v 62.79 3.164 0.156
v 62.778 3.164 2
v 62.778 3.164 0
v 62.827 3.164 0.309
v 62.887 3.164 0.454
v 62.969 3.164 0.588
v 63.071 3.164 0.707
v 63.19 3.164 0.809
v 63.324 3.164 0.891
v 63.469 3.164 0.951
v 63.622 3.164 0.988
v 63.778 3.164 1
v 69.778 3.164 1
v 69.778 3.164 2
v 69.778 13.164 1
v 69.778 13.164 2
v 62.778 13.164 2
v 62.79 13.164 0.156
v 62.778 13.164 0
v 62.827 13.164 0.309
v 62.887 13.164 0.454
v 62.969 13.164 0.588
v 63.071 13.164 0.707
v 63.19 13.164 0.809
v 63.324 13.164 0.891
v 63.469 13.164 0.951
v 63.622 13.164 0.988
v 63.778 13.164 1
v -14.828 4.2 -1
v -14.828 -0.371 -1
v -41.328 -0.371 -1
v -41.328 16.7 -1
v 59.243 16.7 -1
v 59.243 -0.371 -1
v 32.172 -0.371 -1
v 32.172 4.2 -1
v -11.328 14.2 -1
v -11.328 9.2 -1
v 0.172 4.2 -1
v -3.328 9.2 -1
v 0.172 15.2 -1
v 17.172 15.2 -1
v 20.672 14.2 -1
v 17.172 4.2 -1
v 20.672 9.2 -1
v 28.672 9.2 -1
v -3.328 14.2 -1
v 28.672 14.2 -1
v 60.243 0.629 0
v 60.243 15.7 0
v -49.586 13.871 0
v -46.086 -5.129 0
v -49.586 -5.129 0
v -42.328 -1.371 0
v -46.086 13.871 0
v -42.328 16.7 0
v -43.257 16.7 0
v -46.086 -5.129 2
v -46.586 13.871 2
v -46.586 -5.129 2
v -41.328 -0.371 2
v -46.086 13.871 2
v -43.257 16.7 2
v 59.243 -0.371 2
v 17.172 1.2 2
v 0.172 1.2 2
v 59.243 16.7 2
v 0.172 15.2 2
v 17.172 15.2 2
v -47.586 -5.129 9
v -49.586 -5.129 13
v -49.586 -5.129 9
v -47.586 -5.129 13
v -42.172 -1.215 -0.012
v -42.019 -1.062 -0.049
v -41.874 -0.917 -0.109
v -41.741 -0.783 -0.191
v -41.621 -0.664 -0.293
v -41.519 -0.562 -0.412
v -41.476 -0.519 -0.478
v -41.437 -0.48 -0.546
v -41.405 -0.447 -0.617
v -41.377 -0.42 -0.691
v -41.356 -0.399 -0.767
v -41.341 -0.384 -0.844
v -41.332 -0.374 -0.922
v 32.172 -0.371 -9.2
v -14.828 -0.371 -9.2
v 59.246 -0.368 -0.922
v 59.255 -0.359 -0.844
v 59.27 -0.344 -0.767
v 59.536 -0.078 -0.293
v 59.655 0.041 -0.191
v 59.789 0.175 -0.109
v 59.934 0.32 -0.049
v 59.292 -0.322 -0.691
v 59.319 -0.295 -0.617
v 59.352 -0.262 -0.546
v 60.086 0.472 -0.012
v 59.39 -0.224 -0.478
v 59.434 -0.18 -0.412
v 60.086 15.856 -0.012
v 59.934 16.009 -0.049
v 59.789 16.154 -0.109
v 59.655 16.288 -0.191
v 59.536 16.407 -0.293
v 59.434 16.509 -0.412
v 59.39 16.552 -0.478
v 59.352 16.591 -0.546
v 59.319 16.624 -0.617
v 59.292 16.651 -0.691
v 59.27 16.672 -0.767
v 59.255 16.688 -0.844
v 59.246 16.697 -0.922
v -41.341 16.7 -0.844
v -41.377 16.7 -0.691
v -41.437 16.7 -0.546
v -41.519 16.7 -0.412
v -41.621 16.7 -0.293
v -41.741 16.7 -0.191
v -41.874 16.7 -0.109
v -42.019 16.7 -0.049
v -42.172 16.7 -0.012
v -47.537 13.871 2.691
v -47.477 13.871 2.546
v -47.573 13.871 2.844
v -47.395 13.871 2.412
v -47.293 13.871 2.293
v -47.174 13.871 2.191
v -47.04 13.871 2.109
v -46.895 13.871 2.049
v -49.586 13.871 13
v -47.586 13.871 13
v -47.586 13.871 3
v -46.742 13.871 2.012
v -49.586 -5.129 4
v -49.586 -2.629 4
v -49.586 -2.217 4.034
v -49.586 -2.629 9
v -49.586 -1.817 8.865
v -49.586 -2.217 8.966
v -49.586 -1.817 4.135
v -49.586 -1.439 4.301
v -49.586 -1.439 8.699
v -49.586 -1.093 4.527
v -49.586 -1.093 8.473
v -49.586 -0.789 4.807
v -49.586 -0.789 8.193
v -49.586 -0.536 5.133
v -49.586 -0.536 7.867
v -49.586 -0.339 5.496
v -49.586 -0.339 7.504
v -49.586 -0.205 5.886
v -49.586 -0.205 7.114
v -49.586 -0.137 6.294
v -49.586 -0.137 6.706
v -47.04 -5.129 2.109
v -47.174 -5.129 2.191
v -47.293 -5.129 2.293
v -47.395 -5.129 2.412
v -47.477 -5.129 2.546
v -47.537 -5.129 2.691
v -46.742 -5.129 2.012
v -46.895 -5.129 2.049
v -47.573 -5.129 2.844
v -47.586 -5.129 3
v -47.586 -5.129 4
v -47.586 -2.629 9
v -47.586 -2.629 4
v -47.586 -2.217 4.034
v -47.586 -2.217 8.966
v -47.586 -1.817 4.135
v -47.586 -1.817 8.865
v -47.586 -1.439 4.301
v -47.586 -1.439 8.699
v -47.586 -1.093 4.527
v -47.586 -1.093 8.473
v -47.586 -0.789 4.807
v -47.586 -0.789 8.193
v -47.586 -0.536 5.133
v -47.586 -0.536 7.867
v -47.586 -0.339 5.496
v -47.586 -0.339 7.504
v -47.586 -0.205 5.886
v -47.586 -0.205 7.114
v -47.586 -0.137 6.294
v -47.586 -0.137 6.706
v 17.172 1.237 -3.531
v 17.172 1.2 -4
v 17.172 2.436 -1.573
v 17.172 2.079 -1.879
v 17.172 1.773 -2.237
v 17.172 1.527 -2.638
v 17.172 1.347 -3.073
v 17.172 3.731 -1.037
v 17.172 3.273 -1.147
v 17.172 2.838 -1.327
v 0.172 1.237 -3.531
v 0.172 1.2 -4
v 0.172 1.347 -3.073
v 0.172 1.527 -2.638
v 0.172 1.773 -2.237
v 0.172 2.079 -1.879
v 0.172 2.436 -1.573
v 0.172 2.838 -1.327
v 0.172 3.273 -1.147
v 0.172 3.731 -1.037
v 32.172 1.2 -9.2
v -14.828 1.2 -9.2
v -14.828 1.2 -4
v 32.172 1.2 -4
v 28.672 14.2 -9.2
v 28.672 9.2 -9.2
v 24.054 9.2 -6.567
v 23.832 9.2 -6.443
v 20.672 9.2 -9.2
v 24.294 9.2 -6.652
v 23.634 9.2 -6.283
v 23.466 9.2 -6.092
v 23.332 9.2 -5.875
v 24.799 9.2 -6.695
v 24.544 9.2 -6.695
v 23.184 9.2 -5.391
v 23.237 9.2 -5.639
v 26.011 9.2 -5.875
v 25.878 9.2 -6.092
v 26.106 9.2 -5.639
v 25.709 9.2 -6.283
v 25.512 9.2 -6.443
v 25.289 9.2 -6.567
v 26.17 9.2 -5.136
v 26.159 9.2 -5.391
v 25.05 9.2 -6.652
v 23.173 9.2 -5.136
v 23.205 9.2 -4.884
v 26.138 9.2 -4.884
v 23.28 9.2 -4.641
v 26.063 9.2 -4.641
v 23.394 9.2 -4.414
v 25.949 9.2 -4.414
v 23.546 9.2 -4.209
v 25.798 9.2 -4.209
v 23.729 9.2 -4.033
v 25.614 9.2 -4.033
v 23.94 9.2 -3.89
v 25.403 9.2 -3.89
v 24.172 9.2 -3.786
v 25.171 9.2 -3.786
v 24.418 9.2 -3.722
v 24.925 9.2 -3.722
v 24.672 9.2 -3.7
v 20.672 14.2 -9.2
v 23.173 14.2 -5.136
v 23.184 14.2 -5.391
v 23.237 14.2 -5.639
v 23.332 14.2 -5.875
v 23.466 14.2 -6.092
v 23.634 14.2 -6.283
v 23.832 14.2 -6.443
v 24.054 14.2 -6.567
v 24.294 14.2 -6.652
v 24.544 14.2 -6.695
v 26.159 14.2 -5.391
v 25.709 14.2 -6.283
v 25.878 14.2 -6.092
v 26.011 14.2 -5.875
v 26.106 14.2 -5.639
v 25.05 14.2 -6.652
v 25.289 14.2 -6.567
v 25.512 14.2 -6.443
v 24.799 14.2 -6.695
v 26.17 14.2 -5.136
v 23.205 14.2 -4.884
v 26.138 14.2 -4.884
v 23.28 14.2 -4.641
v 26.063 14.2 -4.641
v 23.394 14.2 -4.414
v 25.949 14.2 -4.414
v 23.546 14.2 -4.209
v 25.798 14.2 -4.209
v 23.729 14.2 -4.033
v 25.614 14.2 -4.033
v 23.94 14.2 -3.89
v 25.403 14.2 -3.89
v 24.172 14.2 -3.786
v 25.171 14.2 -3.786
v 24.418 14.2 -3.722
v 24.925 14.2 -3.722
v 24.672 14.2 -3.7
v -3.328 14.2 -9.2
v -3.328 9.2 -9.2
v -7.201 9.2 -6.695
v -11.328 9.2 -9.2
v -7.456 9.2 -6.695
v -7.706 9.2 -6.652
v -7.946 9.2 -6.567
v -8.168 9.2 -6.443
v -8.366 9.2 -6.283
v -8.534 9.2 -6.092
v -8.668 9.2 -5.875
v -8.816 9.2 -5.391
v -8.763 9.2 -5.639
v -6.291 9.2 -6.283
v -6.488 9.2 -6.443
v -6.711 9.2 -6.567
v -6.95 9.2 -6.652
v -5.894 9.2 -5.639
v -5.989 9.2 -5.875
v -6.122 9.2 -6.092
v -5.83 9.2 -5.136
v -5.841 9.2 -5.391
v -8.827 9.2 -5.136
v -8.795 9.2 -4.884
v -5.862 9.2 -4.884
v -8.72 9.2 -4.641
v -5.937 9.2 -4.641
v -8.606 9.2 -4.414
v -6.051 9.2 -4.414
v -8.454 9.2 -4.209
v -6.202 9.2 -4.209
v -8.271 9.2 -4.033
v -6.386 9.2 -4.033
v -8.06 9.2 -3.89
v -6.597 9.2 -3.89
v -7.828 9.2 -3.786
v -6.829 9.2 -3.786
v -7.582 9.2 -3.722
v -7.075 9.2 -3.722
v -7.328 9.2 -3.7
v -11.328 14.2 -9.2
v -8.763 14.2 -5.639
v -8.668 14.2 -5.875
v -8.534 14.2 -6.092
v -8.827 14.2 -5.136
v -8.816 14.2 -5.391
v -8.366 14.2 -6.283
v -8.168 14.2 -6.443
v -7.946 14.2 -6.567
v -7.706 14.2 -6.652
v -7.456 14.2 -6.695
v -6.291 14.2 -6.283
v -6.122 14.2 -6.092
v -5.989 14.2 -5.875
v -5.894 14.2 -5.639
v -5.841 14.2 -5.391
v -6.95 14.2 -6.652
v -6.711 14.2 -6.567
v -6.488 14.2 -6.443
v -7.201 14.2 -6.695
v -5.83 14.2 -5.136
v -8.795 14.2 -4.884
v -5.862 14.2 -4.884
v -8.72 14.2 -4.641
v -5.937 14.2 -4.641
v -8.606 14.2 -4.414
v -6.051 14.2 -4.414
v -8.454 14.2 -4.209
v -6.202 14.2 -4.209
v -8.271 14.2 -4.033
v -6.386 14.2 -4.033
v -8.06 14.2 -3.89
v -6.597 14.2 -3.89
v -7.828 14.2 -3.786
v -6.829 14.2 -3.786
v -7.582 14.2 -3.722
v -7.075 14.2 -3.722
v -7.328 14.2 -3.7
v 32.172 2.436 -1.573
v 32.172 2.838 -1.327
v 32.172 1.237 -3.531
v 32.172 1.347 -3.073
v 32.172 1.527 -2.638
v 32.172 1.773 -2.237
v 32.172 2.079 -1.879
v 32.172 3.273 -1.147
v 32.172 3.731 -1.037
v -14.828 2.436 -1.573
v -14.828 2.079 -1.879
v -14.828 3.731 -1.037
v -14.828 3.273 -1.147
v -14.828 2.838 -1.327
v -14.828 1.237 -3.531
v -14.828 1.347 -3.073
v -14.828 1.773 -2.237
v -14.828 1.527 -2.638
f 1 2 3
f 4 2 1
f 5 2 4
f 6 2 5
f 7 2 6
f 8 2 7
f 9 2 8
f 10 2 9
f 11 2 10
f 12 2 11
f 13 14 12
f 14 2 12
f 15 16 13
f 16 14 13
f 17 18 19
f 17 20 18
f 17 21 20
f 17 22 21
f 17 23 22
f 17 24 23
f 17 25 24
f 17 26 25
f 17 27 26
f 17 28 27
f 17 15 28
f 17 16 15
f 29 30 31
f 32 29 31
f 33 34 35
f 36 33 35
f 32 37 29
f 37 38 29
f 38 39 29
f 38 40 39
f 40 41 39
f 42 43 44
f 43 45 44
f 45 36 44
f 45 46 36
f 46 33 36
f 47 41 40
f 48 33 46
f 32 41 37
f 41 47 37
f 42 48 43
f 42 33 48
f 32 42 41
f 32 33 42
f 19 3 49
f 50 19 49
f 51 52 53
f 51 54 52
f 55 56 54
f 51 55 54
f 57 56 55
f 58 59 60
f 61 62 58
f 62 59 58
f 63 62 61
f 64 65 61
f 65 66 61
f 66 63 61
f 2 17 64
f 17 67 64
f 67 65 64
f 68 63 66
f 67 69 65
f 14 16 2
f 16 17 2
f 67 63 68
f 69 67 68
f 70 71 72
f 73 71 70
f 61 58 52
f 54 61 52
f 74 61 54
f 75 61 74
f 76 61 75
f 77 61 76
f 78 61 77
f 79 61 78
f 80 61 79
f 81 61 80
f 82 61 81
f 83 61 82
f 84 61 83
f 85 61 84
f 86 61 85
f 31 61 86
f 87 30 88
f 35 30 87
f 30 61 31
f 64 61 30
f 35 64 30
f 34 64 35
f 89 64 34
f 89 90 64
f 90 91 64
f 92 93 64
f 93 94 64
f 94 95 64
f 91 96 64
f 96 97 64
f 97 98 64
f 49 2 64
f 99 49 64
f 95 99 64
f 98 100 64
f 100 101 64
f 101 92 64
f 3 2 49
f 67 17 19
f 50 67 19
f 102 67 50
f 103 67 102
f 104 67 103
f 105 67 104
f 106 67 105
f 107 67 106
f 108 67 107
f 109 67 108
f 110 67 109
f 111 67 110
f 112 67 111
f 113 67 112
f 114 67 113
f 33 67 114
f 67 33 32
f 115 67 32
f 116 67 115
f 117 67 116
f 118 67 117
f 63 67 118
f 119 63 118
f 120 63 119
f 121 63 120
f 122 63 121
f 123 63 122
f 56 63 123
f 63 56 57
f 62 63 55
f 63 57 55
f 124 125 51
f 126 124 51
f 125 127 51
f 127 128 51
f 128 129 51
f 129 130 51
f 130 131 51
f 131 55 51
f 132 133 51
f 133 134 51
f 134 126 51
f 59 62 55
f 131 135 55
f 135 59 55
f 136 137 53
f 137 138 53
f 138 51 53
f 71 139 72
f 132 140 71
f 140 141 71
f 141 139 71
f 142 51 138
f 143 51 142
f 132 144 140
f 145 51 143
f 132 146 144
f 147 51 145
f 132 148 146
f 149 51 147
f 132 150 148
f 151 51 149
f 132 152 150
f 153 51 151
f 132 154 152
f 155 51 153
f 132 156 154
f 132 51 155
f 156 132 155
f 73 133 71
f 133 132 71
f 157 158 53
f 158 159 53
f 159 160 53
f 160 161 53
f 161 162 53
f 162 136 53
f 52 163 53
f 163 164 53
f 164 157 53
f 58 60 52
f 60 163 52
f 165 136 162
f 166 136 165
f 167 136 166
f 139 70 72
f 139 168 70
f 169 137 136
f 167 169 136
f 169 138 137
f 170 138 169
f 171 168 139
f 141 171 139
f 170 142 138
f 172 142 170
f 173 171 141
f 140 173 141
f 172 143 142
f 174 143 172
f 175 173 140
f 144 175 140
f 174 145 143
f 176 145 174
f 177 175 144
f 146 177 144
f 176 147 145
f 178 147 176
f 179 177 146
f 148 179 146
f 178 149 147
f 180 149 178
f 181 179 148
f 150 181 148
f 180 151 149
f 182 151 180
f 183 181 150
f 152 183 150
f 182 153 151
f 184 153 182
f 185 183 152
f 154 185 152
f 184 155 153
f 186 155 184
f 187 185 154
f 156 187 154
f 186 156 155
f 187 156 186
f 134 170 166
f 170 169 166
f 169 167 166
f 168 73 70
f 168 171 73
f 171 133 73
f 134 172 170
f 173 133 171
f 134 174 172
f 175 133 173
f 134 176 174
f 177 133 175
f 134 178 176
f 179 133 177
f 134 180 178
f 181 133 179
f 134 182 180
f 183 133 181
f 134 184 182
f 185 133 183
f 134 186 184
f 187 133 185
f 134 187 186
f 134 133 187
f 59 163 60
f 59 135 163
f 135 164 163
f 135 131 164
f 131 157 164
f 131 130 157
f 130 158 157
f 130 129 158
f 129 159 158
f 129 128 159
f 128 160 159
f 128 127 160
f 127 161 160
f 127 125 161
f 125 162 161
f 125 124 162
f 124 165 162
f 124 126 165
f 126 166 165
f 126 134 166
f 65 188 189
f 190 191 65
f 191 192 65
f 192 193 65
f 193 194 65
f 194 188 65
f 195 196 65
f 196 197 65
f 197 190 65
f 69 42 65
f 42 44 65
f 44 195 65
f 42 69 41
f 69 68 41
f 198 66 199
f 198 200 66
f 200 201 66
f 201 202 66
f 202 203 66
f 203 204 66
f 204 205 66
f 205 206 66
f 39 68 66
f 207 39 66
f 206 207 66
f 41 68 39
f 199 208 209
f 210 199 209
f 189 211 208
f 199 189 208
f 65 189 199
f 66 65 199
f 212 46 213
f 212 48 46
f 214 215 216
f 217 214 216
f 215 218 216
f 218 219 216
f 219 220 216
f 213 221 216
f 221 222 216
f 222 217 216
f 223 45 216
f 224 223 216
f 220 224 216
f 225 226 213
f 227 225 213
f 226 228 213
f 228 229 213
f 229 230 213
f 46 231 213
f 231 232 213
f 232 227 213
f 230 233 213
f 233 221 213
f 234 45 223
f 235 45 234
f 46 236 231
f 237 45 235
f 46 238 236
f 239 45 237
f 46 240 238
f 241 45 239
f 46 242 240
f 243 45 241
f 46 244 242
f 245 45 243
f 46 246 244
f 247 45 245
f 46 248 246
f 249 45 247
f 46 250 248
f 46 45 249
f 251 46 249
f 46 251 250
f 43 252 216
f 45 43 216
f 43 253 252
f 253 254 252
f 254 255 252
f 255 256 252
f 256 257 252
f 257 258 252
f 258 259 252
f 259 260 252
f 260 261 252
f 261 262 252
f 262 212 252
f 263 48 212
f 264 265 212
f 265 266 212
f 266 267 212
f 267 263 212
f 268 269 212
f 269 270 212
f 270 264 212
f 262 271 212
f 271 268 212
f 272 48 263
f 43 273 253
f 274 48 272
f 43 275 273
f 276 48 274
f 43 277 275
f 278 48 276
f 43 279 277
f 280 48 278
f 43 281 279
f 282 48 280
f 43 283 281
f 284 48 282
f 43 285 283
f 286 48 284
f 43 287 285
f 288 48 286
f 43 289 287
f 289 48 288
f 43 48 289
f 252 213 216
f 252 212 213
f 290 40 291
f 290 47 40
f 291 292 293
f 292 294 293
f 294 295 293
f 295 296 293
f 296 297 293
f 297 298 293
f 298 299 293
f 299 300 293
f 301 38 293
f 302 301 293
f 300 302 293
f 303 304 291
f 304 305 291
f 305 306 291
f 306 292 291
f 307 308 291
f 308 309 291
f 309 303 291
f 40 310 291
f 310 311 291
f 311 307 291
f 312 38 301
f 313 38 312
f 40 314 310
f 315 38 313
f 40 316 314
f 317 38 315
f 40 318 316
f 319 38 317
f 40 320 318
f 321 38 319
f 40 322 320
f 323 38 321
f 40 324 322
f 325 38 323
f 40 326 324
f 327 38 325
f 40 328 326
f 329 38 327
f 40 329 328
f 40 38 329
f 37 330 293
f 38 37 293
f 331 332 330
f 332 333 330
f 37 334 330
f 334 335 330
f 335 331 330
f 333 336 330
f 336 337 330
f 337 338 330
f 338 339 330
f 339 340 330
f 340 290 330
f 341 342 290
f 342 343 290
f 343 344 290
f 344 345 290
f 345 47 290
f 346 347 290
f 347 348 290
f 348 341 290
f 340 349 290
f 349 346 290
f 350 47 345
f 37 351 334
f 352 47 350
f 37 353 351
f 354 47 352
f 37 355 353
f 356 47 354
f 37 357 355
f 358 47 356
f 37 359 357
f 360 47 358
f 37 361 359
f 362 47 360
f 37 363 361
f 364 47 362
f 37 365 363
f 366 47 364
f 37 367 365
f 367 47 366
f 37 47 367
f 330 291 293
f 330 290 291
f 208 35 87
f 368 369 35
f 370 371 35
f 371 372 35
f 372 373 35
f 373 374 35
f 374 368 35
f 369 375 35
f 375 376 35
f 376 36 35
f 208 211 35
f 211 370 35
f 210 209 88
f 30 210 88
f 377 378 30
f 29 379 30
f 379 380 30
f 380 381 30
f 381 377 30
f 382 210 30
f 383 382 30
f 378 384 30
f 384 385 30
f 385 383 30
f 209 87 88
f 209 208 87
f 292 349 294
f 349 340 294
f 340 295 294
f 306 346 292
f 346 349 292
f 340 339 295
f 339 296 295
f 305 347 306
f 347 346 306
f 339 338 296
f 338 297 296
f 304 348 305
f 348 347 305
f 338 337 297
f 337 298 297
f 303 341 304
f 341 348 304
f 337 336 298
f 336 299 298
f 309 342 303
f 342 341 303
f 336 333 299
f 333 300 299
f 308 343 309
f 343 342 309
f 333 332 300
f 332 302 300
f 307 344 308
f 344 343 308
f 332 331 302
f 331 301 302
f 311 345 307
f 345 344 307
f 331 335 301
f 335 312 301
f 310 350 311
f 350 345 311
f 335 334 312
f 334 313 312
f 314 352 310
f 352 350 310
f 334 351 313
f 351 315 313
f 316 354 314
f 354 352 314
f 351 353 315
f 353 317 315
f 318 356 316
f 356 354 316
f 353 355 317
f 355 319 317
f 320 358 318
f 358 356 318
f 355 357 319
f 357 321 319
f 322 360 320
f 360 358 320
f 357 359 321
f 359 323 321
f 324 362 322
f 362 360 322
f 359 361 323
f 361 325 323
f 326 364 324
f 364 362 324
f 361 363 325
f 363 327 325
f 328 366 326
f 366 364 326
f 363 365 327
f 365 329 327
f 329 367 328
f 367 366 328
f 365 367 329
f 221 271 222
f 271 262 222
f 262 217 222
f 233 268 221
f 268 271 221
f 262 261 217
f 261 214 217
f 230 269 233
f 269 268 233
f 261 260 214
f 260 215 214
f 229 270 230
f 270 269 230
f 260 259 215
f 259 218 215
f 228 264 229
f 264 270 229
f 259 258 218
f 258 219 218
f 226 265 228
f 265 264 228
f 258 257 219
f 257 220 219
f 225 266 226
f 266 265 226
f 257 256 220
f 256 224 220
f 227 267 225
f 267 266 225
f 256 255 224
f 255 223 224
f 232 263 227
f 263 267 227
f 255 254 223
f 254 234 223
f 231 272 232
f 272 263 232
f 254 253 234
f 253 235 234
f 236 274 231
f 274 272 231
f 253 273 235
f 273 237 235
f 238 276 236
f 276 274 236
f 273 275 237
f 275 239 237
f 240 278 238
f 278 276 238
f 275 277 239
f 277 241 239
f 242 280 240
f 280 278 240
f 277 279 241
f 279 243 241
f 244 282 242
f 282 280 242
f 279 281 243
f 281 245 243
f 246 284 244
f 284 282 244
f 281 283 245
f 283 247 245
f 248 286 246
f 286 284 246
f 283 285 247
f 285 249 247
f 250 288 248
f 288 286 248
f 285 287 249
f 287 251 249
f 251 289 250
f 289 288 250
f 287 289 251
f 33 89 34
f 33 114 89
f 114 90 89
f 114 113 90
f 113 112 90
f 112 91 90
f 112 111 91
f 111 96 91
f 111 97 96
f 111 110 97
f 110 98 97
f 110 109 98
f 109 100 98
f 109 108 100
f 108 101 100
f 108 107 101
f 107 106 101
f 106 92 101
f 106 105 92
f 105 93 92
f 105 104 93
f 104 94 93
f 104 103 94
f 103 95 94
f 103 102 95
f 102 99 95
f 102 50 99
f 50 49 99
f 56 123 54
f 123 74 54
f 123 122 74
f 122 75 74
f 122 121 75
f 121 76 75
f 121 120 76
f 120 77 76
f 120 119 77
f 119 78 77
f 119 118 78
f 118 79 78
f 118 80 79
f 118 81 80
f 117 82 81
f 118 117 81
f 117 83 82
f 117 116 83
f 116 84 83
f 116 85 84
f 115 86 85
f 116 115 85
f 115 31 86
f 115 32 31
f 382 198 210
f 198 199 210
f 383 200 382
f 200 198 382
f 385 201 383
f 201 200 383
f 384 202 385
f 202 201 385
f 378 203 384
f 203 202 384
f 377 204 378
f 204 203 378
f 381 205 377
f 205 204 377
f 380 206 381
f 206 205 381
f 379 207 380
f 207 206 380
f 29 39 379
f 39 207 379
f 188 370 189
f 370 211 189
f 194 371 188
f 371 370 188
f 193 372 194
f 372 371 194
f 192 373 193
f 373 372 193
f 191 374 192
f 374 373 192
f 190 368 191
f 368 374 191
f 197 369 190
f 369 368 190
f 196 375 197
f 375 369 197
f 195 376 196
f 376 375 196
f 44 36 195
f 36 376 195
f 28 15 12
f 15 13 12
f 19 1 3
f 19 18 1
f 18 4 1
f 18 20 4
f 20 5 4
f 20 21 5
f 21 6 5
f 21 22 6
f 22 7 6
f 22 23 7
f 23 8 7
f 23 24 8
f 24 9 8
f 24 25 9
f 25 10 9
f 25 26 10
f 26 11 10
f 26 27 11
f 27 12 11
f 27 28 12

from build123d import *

# Parameters (mm, degrees)
CUT_EXTRUDE_1_DEPTH       = 2
CUT_EXTRUDE_START         = 9
CUT_EXTRUDE_1_2_OUTLINE_W = 2
CUT_EXTRUDE_1_2_OUTLINE_H = 19
CUT_EXTRUDE_1_2_DEPTH     = 4
CUT_EXTRUDE_START_2       = 2
CUT_EXTRUDE_1_3_OUTLINE_W = 2
CUT_EXTRUDE_1_3_OUTLINE_H = 19
CUT_EXTRUDE_1_3_DEPTH     = 2
CUT_EXTRUDE_START_3       = -49.585786703
CUT_EXTRUDE_1_4_DEPTH     = 2
CUT_EXTRUDE_START_4       = -5.128602194
CUT_EXTRUDE_1_5_DEPTH     = 19
SKETCH_3_W                = 100.571067812
SKETCH_3_H                = 17.071067812
EXTRUDE_1_DEPTH           = 1
CUT_EXTRUDE_2_REACH       = 75.102
SKETCH_4_W                = 17
SKETCH_4_H                = 14
SKETCH_5_W                = 8
SKETCH_5_H                = 5
SKETCH_5_W_2              = 47
SKETCH_5_H_2              = 1.571067812
EXTRUDE_2_DEPTH           = 8.2
CUT_EXTRUDE_3_REACH       = 75.563
SKETCH_6_R                = 1.5
FILLET_1_R                = 1
FILLET_2_R                = 3
SKETCH_8_W                = 7
SKETCH_8_H                = 10
CUT_EXTRUDE_4_DEPTH       = 1
FILLET_3_R                = 1


with BuildPart() as part:
    # 切除-拉伸1: read off the stored shape, not the designer's step
    # 切除-拉伸1 outline → 切除-拉伸1 (new body)
    with BuildSketch(Plane.XY):
        Polygon((-49.585786703, 13.871397806), (-49.585786703, -5.128602194), (-46.085786703, -5.128602194), (-41.32842739, -0.371242882), (59.242640422, -0.371242882), (62.778174328, 3.164291024), (69.778174328, 3.164291024), (69.778174328, 13.164291024), (62.778174328, 13.164291024), (59.242640422, 16.69982493), (-43.257359578, 16.69982493), (-46.085786703, 13.871397806), align=None)
    extrude(amount=CUT_EXTRUDE_1_DEPTH)

    # Cut-Extrude 1 3 outline → Cut-Extrude 1 3 (add)
    with BuildSketch(Plane.XY.offset(CUT_EXTRUDE_START_2)):
        with Locations((-48.585786703, 4.371397806)):
            Rectangle(CUT_EXTRUDE_1_3_OUTLINE_W, CUT_EXTRUDE_1_3_OUTLINE_H)
    extrude(amount=CUT_EXTRUDE_1_3_DEPTH)



with BuildPart() as body_2:
    # Cut-Extrude 1 2 outline → Cut-Extrude 1 2 (new body)
    with BuildSketch(Plane.XY.offset(CUT_EXTRUDE_START)):
        with Locations((-48.585786703, 4.371397806)):
            Rectangle(CUT_EXTRUDE_1_2_OUTLINE_W, CUT_EXTRUDE_1_2_OUTLINE_H)
    extrude(amount=CUT_EXTRUDE_1_2_DEPTH)


with BuildPart() as part_1:
    add(part.part)

    add(body_2.part)  # Cut-Extrude 1 4 merges body 2
    # Cut-Extrude 1 4 outline → Cut-Extrude 1 4 (add)
    with BuildSketch(Plane.YZ.offset(CUT_EXTRUDE_START_3)):
        with BuildLine():
            Line((13.871397806, 9), (-2.628602194, 9))
            ThreePointArc((-2.628602194, 9), (-0.128602194, 6.5), (-2.628602194, 4))
            Line((-2.628602194, 4), (13.871397806, 4))
            Line((13.871397806, 4), (13.871397806, 9))
        make_face()
    extrude(amount=CUT_EXTRUDE_1_4_DEPTH)

    # Cut-Extrude 1 5 outline → Cut-Extrude 1 5 (add)
    with BuildSketch(Plane(origin=(0, 0, 0), x_dir=(1, 0, 0), z_dir=(0, 1, 0)).offset(CUT_EXTRUDE_START_4)):
        with BuildLine():
            ThreePointArc((-47.585786703, -3), (-47.292893484, -2.292893219), (-46.585786703, -2))
            Line((-46.585786703, -2), (-47.585786703, -2))
            Line((-47.585786703, -2), (-47.585786703, -3))
        make_face()
    extrude(amount=CUT_EXTRUDE_1_5_DEPTH)

    # 草图3 → 凸台-拉伸1 (add)
    with BuildSketch(Plane(origin=(0, 0, 0), x_dir=(-1, 0, 0), z_dir=(0, 0, -1))):
        with Locations((-8.957106516, 8.164291024)):
            Rectangle(SKETCH_3_W, SKETCH_3_H)
    extrude(amount=EXTRUDE_1_DEPTH)

    # 草图4 → 切除-拉伸2 (cut, up to next)
    with BuildSketch(Plane(origin=(0, 0, -1), x_dir=(-1, 0, 0), z_dir=(0, 0, -1)), mode=Mode.PRIVATE) as cut_extrude_2_sk1:
        with Locations((-8.67157261, 8.19982493)):
            Rectangle(SKETCH_4_W, SKETCH_4_H)
    cut_extrude_2_tool1 = extrude(cut_extrude_2_sk1.sketch, amount=-CUT_EXTRUDE_2_REACH, mode=Mode.PRIVATE) & part_1.part
    add(cut_extrude_2_tool1.solids().sort_by_distance((8.671573, 8.199825, -1))[0], mode=Mode.SUBTRACT)

    # 草图5 → 凸台-拉伸2 (add)
    with BuildSketch(Plane(origin=(0, 0, -1), x_dir=(-1, 0, 0), z_dir=(0, 0, -1))):
        with Locations((-24.67157261, 11.69982493)):
            Rectangle(SKETCH_5_W, SKETCH_5_H)
        with Locations((7.32842739, 11.69982493)):
            Rectangle(SKETCH_5_W, SKETCH_5_H)
        with Locations((-8.67157261, 0.414291024)):
            Rectangle(SKETCH_5_W_2, SKETCH_5_H_2)
    extrude(amount=EXTRUDE_2_DEPTH)

    # 草图6 → 切除-拉伸3 (cut, up to next)
    with BuildSketch(Plane(origin=(0, 14.19982493, 0), x_dir=(1, 0, 0), z_dir=(0, 1, 0)), mode=Mode.PRIVATE) as cut_extrude_3_sk1:
        with Locations(Location((-7.32842739, 5.2, 0), (0, 0, 270))):
            Circle(SKETCH_6_R)
    cut_extrude_3_tool1 = extrude(cut_extrude_3_sk1.sketch, amount=-CUT_EXTRUDE_3_REACH, mode=Mode.PRIVATE) & part_1.part
    # 草图6 → 切除-拉伸3 (cut, up to next)
    with BuildSketch(Plane(origin=(0, 14.19982493, 0), x_dir=(1, 0, 0), z_dir=(0, 1, 0)), mode=Mode.PRIVATE) as cut_extrude_3_sk2:
        with Locations(Location((24.67157261, 5.2, 0), (0, 0, 270))):
            Circle(SKETCH_6_R)
    cut_extrude_3_tool2 = extrude(cut_extrude_3_sk2.sketch, amount=-CUT_EXTRUDE_3_REACH, mode=Mode.PRIVATE) & part_1.part
    add(cut_extrude_3_tool1.solids().sort_by_distance((-7.328427, 14.199825, -5.2))[0], mode=Mode.SUBTRACT)
    add(cut_extrude_3_tool2.solids().sort_by_distance((24.671573, 14.199825, -5.2))[0], mode=Mode.SUBTRACT)

    # 圆角1
    fillet_1_edges = [part_1.edges().sort_by_distance(p)[0] for p in [
        (59.242640422, 8.164291024, 0),
        (-41.32842739, 8.164291024, 0),
    ]]
    fillet(fillet_1_edges, radius=FILLET_1_R - 0.0001)  # a hair under: the kernel refuses the full size

    # 圆角2
    fillet_2_edges = [part_1.edges().sort_by_distance(p)[0] for p in [
        (-7.32842739, 1.19982493, -1),
        (24.67157261, 1.19982493, -1),
    ]]
    fillet(fillet_2_edges, radius=FILLET_2_R)

    # 草图8 → 切除-拉伸4 (cut)
    with BuildSketch(Plane(origin=(0, 0, 0), x_dir=(-1, 0, 0), z_dir=(0, 0, -1))):
        with Locations((-66.278174328, 8.164291024)):
            Rectangle(SKETCH_8_W, SKETCH_8_H)
    extrude(amount=-CUT_EXTRUDE_4_DEPTH, mode=Mode.SUBTRACT)

    # 圆角3
    fillet_3_edges = [part_1.edges().sort_by_distance(p)[0] for p in [
        (62.778174328, 8.164291024, 1),
    ]]
    fillet(fillet_3_edges, radius=FILLET_3_R - 0.0001)  # a hair under: the kernel refuses the full size


solid = part_1.part
